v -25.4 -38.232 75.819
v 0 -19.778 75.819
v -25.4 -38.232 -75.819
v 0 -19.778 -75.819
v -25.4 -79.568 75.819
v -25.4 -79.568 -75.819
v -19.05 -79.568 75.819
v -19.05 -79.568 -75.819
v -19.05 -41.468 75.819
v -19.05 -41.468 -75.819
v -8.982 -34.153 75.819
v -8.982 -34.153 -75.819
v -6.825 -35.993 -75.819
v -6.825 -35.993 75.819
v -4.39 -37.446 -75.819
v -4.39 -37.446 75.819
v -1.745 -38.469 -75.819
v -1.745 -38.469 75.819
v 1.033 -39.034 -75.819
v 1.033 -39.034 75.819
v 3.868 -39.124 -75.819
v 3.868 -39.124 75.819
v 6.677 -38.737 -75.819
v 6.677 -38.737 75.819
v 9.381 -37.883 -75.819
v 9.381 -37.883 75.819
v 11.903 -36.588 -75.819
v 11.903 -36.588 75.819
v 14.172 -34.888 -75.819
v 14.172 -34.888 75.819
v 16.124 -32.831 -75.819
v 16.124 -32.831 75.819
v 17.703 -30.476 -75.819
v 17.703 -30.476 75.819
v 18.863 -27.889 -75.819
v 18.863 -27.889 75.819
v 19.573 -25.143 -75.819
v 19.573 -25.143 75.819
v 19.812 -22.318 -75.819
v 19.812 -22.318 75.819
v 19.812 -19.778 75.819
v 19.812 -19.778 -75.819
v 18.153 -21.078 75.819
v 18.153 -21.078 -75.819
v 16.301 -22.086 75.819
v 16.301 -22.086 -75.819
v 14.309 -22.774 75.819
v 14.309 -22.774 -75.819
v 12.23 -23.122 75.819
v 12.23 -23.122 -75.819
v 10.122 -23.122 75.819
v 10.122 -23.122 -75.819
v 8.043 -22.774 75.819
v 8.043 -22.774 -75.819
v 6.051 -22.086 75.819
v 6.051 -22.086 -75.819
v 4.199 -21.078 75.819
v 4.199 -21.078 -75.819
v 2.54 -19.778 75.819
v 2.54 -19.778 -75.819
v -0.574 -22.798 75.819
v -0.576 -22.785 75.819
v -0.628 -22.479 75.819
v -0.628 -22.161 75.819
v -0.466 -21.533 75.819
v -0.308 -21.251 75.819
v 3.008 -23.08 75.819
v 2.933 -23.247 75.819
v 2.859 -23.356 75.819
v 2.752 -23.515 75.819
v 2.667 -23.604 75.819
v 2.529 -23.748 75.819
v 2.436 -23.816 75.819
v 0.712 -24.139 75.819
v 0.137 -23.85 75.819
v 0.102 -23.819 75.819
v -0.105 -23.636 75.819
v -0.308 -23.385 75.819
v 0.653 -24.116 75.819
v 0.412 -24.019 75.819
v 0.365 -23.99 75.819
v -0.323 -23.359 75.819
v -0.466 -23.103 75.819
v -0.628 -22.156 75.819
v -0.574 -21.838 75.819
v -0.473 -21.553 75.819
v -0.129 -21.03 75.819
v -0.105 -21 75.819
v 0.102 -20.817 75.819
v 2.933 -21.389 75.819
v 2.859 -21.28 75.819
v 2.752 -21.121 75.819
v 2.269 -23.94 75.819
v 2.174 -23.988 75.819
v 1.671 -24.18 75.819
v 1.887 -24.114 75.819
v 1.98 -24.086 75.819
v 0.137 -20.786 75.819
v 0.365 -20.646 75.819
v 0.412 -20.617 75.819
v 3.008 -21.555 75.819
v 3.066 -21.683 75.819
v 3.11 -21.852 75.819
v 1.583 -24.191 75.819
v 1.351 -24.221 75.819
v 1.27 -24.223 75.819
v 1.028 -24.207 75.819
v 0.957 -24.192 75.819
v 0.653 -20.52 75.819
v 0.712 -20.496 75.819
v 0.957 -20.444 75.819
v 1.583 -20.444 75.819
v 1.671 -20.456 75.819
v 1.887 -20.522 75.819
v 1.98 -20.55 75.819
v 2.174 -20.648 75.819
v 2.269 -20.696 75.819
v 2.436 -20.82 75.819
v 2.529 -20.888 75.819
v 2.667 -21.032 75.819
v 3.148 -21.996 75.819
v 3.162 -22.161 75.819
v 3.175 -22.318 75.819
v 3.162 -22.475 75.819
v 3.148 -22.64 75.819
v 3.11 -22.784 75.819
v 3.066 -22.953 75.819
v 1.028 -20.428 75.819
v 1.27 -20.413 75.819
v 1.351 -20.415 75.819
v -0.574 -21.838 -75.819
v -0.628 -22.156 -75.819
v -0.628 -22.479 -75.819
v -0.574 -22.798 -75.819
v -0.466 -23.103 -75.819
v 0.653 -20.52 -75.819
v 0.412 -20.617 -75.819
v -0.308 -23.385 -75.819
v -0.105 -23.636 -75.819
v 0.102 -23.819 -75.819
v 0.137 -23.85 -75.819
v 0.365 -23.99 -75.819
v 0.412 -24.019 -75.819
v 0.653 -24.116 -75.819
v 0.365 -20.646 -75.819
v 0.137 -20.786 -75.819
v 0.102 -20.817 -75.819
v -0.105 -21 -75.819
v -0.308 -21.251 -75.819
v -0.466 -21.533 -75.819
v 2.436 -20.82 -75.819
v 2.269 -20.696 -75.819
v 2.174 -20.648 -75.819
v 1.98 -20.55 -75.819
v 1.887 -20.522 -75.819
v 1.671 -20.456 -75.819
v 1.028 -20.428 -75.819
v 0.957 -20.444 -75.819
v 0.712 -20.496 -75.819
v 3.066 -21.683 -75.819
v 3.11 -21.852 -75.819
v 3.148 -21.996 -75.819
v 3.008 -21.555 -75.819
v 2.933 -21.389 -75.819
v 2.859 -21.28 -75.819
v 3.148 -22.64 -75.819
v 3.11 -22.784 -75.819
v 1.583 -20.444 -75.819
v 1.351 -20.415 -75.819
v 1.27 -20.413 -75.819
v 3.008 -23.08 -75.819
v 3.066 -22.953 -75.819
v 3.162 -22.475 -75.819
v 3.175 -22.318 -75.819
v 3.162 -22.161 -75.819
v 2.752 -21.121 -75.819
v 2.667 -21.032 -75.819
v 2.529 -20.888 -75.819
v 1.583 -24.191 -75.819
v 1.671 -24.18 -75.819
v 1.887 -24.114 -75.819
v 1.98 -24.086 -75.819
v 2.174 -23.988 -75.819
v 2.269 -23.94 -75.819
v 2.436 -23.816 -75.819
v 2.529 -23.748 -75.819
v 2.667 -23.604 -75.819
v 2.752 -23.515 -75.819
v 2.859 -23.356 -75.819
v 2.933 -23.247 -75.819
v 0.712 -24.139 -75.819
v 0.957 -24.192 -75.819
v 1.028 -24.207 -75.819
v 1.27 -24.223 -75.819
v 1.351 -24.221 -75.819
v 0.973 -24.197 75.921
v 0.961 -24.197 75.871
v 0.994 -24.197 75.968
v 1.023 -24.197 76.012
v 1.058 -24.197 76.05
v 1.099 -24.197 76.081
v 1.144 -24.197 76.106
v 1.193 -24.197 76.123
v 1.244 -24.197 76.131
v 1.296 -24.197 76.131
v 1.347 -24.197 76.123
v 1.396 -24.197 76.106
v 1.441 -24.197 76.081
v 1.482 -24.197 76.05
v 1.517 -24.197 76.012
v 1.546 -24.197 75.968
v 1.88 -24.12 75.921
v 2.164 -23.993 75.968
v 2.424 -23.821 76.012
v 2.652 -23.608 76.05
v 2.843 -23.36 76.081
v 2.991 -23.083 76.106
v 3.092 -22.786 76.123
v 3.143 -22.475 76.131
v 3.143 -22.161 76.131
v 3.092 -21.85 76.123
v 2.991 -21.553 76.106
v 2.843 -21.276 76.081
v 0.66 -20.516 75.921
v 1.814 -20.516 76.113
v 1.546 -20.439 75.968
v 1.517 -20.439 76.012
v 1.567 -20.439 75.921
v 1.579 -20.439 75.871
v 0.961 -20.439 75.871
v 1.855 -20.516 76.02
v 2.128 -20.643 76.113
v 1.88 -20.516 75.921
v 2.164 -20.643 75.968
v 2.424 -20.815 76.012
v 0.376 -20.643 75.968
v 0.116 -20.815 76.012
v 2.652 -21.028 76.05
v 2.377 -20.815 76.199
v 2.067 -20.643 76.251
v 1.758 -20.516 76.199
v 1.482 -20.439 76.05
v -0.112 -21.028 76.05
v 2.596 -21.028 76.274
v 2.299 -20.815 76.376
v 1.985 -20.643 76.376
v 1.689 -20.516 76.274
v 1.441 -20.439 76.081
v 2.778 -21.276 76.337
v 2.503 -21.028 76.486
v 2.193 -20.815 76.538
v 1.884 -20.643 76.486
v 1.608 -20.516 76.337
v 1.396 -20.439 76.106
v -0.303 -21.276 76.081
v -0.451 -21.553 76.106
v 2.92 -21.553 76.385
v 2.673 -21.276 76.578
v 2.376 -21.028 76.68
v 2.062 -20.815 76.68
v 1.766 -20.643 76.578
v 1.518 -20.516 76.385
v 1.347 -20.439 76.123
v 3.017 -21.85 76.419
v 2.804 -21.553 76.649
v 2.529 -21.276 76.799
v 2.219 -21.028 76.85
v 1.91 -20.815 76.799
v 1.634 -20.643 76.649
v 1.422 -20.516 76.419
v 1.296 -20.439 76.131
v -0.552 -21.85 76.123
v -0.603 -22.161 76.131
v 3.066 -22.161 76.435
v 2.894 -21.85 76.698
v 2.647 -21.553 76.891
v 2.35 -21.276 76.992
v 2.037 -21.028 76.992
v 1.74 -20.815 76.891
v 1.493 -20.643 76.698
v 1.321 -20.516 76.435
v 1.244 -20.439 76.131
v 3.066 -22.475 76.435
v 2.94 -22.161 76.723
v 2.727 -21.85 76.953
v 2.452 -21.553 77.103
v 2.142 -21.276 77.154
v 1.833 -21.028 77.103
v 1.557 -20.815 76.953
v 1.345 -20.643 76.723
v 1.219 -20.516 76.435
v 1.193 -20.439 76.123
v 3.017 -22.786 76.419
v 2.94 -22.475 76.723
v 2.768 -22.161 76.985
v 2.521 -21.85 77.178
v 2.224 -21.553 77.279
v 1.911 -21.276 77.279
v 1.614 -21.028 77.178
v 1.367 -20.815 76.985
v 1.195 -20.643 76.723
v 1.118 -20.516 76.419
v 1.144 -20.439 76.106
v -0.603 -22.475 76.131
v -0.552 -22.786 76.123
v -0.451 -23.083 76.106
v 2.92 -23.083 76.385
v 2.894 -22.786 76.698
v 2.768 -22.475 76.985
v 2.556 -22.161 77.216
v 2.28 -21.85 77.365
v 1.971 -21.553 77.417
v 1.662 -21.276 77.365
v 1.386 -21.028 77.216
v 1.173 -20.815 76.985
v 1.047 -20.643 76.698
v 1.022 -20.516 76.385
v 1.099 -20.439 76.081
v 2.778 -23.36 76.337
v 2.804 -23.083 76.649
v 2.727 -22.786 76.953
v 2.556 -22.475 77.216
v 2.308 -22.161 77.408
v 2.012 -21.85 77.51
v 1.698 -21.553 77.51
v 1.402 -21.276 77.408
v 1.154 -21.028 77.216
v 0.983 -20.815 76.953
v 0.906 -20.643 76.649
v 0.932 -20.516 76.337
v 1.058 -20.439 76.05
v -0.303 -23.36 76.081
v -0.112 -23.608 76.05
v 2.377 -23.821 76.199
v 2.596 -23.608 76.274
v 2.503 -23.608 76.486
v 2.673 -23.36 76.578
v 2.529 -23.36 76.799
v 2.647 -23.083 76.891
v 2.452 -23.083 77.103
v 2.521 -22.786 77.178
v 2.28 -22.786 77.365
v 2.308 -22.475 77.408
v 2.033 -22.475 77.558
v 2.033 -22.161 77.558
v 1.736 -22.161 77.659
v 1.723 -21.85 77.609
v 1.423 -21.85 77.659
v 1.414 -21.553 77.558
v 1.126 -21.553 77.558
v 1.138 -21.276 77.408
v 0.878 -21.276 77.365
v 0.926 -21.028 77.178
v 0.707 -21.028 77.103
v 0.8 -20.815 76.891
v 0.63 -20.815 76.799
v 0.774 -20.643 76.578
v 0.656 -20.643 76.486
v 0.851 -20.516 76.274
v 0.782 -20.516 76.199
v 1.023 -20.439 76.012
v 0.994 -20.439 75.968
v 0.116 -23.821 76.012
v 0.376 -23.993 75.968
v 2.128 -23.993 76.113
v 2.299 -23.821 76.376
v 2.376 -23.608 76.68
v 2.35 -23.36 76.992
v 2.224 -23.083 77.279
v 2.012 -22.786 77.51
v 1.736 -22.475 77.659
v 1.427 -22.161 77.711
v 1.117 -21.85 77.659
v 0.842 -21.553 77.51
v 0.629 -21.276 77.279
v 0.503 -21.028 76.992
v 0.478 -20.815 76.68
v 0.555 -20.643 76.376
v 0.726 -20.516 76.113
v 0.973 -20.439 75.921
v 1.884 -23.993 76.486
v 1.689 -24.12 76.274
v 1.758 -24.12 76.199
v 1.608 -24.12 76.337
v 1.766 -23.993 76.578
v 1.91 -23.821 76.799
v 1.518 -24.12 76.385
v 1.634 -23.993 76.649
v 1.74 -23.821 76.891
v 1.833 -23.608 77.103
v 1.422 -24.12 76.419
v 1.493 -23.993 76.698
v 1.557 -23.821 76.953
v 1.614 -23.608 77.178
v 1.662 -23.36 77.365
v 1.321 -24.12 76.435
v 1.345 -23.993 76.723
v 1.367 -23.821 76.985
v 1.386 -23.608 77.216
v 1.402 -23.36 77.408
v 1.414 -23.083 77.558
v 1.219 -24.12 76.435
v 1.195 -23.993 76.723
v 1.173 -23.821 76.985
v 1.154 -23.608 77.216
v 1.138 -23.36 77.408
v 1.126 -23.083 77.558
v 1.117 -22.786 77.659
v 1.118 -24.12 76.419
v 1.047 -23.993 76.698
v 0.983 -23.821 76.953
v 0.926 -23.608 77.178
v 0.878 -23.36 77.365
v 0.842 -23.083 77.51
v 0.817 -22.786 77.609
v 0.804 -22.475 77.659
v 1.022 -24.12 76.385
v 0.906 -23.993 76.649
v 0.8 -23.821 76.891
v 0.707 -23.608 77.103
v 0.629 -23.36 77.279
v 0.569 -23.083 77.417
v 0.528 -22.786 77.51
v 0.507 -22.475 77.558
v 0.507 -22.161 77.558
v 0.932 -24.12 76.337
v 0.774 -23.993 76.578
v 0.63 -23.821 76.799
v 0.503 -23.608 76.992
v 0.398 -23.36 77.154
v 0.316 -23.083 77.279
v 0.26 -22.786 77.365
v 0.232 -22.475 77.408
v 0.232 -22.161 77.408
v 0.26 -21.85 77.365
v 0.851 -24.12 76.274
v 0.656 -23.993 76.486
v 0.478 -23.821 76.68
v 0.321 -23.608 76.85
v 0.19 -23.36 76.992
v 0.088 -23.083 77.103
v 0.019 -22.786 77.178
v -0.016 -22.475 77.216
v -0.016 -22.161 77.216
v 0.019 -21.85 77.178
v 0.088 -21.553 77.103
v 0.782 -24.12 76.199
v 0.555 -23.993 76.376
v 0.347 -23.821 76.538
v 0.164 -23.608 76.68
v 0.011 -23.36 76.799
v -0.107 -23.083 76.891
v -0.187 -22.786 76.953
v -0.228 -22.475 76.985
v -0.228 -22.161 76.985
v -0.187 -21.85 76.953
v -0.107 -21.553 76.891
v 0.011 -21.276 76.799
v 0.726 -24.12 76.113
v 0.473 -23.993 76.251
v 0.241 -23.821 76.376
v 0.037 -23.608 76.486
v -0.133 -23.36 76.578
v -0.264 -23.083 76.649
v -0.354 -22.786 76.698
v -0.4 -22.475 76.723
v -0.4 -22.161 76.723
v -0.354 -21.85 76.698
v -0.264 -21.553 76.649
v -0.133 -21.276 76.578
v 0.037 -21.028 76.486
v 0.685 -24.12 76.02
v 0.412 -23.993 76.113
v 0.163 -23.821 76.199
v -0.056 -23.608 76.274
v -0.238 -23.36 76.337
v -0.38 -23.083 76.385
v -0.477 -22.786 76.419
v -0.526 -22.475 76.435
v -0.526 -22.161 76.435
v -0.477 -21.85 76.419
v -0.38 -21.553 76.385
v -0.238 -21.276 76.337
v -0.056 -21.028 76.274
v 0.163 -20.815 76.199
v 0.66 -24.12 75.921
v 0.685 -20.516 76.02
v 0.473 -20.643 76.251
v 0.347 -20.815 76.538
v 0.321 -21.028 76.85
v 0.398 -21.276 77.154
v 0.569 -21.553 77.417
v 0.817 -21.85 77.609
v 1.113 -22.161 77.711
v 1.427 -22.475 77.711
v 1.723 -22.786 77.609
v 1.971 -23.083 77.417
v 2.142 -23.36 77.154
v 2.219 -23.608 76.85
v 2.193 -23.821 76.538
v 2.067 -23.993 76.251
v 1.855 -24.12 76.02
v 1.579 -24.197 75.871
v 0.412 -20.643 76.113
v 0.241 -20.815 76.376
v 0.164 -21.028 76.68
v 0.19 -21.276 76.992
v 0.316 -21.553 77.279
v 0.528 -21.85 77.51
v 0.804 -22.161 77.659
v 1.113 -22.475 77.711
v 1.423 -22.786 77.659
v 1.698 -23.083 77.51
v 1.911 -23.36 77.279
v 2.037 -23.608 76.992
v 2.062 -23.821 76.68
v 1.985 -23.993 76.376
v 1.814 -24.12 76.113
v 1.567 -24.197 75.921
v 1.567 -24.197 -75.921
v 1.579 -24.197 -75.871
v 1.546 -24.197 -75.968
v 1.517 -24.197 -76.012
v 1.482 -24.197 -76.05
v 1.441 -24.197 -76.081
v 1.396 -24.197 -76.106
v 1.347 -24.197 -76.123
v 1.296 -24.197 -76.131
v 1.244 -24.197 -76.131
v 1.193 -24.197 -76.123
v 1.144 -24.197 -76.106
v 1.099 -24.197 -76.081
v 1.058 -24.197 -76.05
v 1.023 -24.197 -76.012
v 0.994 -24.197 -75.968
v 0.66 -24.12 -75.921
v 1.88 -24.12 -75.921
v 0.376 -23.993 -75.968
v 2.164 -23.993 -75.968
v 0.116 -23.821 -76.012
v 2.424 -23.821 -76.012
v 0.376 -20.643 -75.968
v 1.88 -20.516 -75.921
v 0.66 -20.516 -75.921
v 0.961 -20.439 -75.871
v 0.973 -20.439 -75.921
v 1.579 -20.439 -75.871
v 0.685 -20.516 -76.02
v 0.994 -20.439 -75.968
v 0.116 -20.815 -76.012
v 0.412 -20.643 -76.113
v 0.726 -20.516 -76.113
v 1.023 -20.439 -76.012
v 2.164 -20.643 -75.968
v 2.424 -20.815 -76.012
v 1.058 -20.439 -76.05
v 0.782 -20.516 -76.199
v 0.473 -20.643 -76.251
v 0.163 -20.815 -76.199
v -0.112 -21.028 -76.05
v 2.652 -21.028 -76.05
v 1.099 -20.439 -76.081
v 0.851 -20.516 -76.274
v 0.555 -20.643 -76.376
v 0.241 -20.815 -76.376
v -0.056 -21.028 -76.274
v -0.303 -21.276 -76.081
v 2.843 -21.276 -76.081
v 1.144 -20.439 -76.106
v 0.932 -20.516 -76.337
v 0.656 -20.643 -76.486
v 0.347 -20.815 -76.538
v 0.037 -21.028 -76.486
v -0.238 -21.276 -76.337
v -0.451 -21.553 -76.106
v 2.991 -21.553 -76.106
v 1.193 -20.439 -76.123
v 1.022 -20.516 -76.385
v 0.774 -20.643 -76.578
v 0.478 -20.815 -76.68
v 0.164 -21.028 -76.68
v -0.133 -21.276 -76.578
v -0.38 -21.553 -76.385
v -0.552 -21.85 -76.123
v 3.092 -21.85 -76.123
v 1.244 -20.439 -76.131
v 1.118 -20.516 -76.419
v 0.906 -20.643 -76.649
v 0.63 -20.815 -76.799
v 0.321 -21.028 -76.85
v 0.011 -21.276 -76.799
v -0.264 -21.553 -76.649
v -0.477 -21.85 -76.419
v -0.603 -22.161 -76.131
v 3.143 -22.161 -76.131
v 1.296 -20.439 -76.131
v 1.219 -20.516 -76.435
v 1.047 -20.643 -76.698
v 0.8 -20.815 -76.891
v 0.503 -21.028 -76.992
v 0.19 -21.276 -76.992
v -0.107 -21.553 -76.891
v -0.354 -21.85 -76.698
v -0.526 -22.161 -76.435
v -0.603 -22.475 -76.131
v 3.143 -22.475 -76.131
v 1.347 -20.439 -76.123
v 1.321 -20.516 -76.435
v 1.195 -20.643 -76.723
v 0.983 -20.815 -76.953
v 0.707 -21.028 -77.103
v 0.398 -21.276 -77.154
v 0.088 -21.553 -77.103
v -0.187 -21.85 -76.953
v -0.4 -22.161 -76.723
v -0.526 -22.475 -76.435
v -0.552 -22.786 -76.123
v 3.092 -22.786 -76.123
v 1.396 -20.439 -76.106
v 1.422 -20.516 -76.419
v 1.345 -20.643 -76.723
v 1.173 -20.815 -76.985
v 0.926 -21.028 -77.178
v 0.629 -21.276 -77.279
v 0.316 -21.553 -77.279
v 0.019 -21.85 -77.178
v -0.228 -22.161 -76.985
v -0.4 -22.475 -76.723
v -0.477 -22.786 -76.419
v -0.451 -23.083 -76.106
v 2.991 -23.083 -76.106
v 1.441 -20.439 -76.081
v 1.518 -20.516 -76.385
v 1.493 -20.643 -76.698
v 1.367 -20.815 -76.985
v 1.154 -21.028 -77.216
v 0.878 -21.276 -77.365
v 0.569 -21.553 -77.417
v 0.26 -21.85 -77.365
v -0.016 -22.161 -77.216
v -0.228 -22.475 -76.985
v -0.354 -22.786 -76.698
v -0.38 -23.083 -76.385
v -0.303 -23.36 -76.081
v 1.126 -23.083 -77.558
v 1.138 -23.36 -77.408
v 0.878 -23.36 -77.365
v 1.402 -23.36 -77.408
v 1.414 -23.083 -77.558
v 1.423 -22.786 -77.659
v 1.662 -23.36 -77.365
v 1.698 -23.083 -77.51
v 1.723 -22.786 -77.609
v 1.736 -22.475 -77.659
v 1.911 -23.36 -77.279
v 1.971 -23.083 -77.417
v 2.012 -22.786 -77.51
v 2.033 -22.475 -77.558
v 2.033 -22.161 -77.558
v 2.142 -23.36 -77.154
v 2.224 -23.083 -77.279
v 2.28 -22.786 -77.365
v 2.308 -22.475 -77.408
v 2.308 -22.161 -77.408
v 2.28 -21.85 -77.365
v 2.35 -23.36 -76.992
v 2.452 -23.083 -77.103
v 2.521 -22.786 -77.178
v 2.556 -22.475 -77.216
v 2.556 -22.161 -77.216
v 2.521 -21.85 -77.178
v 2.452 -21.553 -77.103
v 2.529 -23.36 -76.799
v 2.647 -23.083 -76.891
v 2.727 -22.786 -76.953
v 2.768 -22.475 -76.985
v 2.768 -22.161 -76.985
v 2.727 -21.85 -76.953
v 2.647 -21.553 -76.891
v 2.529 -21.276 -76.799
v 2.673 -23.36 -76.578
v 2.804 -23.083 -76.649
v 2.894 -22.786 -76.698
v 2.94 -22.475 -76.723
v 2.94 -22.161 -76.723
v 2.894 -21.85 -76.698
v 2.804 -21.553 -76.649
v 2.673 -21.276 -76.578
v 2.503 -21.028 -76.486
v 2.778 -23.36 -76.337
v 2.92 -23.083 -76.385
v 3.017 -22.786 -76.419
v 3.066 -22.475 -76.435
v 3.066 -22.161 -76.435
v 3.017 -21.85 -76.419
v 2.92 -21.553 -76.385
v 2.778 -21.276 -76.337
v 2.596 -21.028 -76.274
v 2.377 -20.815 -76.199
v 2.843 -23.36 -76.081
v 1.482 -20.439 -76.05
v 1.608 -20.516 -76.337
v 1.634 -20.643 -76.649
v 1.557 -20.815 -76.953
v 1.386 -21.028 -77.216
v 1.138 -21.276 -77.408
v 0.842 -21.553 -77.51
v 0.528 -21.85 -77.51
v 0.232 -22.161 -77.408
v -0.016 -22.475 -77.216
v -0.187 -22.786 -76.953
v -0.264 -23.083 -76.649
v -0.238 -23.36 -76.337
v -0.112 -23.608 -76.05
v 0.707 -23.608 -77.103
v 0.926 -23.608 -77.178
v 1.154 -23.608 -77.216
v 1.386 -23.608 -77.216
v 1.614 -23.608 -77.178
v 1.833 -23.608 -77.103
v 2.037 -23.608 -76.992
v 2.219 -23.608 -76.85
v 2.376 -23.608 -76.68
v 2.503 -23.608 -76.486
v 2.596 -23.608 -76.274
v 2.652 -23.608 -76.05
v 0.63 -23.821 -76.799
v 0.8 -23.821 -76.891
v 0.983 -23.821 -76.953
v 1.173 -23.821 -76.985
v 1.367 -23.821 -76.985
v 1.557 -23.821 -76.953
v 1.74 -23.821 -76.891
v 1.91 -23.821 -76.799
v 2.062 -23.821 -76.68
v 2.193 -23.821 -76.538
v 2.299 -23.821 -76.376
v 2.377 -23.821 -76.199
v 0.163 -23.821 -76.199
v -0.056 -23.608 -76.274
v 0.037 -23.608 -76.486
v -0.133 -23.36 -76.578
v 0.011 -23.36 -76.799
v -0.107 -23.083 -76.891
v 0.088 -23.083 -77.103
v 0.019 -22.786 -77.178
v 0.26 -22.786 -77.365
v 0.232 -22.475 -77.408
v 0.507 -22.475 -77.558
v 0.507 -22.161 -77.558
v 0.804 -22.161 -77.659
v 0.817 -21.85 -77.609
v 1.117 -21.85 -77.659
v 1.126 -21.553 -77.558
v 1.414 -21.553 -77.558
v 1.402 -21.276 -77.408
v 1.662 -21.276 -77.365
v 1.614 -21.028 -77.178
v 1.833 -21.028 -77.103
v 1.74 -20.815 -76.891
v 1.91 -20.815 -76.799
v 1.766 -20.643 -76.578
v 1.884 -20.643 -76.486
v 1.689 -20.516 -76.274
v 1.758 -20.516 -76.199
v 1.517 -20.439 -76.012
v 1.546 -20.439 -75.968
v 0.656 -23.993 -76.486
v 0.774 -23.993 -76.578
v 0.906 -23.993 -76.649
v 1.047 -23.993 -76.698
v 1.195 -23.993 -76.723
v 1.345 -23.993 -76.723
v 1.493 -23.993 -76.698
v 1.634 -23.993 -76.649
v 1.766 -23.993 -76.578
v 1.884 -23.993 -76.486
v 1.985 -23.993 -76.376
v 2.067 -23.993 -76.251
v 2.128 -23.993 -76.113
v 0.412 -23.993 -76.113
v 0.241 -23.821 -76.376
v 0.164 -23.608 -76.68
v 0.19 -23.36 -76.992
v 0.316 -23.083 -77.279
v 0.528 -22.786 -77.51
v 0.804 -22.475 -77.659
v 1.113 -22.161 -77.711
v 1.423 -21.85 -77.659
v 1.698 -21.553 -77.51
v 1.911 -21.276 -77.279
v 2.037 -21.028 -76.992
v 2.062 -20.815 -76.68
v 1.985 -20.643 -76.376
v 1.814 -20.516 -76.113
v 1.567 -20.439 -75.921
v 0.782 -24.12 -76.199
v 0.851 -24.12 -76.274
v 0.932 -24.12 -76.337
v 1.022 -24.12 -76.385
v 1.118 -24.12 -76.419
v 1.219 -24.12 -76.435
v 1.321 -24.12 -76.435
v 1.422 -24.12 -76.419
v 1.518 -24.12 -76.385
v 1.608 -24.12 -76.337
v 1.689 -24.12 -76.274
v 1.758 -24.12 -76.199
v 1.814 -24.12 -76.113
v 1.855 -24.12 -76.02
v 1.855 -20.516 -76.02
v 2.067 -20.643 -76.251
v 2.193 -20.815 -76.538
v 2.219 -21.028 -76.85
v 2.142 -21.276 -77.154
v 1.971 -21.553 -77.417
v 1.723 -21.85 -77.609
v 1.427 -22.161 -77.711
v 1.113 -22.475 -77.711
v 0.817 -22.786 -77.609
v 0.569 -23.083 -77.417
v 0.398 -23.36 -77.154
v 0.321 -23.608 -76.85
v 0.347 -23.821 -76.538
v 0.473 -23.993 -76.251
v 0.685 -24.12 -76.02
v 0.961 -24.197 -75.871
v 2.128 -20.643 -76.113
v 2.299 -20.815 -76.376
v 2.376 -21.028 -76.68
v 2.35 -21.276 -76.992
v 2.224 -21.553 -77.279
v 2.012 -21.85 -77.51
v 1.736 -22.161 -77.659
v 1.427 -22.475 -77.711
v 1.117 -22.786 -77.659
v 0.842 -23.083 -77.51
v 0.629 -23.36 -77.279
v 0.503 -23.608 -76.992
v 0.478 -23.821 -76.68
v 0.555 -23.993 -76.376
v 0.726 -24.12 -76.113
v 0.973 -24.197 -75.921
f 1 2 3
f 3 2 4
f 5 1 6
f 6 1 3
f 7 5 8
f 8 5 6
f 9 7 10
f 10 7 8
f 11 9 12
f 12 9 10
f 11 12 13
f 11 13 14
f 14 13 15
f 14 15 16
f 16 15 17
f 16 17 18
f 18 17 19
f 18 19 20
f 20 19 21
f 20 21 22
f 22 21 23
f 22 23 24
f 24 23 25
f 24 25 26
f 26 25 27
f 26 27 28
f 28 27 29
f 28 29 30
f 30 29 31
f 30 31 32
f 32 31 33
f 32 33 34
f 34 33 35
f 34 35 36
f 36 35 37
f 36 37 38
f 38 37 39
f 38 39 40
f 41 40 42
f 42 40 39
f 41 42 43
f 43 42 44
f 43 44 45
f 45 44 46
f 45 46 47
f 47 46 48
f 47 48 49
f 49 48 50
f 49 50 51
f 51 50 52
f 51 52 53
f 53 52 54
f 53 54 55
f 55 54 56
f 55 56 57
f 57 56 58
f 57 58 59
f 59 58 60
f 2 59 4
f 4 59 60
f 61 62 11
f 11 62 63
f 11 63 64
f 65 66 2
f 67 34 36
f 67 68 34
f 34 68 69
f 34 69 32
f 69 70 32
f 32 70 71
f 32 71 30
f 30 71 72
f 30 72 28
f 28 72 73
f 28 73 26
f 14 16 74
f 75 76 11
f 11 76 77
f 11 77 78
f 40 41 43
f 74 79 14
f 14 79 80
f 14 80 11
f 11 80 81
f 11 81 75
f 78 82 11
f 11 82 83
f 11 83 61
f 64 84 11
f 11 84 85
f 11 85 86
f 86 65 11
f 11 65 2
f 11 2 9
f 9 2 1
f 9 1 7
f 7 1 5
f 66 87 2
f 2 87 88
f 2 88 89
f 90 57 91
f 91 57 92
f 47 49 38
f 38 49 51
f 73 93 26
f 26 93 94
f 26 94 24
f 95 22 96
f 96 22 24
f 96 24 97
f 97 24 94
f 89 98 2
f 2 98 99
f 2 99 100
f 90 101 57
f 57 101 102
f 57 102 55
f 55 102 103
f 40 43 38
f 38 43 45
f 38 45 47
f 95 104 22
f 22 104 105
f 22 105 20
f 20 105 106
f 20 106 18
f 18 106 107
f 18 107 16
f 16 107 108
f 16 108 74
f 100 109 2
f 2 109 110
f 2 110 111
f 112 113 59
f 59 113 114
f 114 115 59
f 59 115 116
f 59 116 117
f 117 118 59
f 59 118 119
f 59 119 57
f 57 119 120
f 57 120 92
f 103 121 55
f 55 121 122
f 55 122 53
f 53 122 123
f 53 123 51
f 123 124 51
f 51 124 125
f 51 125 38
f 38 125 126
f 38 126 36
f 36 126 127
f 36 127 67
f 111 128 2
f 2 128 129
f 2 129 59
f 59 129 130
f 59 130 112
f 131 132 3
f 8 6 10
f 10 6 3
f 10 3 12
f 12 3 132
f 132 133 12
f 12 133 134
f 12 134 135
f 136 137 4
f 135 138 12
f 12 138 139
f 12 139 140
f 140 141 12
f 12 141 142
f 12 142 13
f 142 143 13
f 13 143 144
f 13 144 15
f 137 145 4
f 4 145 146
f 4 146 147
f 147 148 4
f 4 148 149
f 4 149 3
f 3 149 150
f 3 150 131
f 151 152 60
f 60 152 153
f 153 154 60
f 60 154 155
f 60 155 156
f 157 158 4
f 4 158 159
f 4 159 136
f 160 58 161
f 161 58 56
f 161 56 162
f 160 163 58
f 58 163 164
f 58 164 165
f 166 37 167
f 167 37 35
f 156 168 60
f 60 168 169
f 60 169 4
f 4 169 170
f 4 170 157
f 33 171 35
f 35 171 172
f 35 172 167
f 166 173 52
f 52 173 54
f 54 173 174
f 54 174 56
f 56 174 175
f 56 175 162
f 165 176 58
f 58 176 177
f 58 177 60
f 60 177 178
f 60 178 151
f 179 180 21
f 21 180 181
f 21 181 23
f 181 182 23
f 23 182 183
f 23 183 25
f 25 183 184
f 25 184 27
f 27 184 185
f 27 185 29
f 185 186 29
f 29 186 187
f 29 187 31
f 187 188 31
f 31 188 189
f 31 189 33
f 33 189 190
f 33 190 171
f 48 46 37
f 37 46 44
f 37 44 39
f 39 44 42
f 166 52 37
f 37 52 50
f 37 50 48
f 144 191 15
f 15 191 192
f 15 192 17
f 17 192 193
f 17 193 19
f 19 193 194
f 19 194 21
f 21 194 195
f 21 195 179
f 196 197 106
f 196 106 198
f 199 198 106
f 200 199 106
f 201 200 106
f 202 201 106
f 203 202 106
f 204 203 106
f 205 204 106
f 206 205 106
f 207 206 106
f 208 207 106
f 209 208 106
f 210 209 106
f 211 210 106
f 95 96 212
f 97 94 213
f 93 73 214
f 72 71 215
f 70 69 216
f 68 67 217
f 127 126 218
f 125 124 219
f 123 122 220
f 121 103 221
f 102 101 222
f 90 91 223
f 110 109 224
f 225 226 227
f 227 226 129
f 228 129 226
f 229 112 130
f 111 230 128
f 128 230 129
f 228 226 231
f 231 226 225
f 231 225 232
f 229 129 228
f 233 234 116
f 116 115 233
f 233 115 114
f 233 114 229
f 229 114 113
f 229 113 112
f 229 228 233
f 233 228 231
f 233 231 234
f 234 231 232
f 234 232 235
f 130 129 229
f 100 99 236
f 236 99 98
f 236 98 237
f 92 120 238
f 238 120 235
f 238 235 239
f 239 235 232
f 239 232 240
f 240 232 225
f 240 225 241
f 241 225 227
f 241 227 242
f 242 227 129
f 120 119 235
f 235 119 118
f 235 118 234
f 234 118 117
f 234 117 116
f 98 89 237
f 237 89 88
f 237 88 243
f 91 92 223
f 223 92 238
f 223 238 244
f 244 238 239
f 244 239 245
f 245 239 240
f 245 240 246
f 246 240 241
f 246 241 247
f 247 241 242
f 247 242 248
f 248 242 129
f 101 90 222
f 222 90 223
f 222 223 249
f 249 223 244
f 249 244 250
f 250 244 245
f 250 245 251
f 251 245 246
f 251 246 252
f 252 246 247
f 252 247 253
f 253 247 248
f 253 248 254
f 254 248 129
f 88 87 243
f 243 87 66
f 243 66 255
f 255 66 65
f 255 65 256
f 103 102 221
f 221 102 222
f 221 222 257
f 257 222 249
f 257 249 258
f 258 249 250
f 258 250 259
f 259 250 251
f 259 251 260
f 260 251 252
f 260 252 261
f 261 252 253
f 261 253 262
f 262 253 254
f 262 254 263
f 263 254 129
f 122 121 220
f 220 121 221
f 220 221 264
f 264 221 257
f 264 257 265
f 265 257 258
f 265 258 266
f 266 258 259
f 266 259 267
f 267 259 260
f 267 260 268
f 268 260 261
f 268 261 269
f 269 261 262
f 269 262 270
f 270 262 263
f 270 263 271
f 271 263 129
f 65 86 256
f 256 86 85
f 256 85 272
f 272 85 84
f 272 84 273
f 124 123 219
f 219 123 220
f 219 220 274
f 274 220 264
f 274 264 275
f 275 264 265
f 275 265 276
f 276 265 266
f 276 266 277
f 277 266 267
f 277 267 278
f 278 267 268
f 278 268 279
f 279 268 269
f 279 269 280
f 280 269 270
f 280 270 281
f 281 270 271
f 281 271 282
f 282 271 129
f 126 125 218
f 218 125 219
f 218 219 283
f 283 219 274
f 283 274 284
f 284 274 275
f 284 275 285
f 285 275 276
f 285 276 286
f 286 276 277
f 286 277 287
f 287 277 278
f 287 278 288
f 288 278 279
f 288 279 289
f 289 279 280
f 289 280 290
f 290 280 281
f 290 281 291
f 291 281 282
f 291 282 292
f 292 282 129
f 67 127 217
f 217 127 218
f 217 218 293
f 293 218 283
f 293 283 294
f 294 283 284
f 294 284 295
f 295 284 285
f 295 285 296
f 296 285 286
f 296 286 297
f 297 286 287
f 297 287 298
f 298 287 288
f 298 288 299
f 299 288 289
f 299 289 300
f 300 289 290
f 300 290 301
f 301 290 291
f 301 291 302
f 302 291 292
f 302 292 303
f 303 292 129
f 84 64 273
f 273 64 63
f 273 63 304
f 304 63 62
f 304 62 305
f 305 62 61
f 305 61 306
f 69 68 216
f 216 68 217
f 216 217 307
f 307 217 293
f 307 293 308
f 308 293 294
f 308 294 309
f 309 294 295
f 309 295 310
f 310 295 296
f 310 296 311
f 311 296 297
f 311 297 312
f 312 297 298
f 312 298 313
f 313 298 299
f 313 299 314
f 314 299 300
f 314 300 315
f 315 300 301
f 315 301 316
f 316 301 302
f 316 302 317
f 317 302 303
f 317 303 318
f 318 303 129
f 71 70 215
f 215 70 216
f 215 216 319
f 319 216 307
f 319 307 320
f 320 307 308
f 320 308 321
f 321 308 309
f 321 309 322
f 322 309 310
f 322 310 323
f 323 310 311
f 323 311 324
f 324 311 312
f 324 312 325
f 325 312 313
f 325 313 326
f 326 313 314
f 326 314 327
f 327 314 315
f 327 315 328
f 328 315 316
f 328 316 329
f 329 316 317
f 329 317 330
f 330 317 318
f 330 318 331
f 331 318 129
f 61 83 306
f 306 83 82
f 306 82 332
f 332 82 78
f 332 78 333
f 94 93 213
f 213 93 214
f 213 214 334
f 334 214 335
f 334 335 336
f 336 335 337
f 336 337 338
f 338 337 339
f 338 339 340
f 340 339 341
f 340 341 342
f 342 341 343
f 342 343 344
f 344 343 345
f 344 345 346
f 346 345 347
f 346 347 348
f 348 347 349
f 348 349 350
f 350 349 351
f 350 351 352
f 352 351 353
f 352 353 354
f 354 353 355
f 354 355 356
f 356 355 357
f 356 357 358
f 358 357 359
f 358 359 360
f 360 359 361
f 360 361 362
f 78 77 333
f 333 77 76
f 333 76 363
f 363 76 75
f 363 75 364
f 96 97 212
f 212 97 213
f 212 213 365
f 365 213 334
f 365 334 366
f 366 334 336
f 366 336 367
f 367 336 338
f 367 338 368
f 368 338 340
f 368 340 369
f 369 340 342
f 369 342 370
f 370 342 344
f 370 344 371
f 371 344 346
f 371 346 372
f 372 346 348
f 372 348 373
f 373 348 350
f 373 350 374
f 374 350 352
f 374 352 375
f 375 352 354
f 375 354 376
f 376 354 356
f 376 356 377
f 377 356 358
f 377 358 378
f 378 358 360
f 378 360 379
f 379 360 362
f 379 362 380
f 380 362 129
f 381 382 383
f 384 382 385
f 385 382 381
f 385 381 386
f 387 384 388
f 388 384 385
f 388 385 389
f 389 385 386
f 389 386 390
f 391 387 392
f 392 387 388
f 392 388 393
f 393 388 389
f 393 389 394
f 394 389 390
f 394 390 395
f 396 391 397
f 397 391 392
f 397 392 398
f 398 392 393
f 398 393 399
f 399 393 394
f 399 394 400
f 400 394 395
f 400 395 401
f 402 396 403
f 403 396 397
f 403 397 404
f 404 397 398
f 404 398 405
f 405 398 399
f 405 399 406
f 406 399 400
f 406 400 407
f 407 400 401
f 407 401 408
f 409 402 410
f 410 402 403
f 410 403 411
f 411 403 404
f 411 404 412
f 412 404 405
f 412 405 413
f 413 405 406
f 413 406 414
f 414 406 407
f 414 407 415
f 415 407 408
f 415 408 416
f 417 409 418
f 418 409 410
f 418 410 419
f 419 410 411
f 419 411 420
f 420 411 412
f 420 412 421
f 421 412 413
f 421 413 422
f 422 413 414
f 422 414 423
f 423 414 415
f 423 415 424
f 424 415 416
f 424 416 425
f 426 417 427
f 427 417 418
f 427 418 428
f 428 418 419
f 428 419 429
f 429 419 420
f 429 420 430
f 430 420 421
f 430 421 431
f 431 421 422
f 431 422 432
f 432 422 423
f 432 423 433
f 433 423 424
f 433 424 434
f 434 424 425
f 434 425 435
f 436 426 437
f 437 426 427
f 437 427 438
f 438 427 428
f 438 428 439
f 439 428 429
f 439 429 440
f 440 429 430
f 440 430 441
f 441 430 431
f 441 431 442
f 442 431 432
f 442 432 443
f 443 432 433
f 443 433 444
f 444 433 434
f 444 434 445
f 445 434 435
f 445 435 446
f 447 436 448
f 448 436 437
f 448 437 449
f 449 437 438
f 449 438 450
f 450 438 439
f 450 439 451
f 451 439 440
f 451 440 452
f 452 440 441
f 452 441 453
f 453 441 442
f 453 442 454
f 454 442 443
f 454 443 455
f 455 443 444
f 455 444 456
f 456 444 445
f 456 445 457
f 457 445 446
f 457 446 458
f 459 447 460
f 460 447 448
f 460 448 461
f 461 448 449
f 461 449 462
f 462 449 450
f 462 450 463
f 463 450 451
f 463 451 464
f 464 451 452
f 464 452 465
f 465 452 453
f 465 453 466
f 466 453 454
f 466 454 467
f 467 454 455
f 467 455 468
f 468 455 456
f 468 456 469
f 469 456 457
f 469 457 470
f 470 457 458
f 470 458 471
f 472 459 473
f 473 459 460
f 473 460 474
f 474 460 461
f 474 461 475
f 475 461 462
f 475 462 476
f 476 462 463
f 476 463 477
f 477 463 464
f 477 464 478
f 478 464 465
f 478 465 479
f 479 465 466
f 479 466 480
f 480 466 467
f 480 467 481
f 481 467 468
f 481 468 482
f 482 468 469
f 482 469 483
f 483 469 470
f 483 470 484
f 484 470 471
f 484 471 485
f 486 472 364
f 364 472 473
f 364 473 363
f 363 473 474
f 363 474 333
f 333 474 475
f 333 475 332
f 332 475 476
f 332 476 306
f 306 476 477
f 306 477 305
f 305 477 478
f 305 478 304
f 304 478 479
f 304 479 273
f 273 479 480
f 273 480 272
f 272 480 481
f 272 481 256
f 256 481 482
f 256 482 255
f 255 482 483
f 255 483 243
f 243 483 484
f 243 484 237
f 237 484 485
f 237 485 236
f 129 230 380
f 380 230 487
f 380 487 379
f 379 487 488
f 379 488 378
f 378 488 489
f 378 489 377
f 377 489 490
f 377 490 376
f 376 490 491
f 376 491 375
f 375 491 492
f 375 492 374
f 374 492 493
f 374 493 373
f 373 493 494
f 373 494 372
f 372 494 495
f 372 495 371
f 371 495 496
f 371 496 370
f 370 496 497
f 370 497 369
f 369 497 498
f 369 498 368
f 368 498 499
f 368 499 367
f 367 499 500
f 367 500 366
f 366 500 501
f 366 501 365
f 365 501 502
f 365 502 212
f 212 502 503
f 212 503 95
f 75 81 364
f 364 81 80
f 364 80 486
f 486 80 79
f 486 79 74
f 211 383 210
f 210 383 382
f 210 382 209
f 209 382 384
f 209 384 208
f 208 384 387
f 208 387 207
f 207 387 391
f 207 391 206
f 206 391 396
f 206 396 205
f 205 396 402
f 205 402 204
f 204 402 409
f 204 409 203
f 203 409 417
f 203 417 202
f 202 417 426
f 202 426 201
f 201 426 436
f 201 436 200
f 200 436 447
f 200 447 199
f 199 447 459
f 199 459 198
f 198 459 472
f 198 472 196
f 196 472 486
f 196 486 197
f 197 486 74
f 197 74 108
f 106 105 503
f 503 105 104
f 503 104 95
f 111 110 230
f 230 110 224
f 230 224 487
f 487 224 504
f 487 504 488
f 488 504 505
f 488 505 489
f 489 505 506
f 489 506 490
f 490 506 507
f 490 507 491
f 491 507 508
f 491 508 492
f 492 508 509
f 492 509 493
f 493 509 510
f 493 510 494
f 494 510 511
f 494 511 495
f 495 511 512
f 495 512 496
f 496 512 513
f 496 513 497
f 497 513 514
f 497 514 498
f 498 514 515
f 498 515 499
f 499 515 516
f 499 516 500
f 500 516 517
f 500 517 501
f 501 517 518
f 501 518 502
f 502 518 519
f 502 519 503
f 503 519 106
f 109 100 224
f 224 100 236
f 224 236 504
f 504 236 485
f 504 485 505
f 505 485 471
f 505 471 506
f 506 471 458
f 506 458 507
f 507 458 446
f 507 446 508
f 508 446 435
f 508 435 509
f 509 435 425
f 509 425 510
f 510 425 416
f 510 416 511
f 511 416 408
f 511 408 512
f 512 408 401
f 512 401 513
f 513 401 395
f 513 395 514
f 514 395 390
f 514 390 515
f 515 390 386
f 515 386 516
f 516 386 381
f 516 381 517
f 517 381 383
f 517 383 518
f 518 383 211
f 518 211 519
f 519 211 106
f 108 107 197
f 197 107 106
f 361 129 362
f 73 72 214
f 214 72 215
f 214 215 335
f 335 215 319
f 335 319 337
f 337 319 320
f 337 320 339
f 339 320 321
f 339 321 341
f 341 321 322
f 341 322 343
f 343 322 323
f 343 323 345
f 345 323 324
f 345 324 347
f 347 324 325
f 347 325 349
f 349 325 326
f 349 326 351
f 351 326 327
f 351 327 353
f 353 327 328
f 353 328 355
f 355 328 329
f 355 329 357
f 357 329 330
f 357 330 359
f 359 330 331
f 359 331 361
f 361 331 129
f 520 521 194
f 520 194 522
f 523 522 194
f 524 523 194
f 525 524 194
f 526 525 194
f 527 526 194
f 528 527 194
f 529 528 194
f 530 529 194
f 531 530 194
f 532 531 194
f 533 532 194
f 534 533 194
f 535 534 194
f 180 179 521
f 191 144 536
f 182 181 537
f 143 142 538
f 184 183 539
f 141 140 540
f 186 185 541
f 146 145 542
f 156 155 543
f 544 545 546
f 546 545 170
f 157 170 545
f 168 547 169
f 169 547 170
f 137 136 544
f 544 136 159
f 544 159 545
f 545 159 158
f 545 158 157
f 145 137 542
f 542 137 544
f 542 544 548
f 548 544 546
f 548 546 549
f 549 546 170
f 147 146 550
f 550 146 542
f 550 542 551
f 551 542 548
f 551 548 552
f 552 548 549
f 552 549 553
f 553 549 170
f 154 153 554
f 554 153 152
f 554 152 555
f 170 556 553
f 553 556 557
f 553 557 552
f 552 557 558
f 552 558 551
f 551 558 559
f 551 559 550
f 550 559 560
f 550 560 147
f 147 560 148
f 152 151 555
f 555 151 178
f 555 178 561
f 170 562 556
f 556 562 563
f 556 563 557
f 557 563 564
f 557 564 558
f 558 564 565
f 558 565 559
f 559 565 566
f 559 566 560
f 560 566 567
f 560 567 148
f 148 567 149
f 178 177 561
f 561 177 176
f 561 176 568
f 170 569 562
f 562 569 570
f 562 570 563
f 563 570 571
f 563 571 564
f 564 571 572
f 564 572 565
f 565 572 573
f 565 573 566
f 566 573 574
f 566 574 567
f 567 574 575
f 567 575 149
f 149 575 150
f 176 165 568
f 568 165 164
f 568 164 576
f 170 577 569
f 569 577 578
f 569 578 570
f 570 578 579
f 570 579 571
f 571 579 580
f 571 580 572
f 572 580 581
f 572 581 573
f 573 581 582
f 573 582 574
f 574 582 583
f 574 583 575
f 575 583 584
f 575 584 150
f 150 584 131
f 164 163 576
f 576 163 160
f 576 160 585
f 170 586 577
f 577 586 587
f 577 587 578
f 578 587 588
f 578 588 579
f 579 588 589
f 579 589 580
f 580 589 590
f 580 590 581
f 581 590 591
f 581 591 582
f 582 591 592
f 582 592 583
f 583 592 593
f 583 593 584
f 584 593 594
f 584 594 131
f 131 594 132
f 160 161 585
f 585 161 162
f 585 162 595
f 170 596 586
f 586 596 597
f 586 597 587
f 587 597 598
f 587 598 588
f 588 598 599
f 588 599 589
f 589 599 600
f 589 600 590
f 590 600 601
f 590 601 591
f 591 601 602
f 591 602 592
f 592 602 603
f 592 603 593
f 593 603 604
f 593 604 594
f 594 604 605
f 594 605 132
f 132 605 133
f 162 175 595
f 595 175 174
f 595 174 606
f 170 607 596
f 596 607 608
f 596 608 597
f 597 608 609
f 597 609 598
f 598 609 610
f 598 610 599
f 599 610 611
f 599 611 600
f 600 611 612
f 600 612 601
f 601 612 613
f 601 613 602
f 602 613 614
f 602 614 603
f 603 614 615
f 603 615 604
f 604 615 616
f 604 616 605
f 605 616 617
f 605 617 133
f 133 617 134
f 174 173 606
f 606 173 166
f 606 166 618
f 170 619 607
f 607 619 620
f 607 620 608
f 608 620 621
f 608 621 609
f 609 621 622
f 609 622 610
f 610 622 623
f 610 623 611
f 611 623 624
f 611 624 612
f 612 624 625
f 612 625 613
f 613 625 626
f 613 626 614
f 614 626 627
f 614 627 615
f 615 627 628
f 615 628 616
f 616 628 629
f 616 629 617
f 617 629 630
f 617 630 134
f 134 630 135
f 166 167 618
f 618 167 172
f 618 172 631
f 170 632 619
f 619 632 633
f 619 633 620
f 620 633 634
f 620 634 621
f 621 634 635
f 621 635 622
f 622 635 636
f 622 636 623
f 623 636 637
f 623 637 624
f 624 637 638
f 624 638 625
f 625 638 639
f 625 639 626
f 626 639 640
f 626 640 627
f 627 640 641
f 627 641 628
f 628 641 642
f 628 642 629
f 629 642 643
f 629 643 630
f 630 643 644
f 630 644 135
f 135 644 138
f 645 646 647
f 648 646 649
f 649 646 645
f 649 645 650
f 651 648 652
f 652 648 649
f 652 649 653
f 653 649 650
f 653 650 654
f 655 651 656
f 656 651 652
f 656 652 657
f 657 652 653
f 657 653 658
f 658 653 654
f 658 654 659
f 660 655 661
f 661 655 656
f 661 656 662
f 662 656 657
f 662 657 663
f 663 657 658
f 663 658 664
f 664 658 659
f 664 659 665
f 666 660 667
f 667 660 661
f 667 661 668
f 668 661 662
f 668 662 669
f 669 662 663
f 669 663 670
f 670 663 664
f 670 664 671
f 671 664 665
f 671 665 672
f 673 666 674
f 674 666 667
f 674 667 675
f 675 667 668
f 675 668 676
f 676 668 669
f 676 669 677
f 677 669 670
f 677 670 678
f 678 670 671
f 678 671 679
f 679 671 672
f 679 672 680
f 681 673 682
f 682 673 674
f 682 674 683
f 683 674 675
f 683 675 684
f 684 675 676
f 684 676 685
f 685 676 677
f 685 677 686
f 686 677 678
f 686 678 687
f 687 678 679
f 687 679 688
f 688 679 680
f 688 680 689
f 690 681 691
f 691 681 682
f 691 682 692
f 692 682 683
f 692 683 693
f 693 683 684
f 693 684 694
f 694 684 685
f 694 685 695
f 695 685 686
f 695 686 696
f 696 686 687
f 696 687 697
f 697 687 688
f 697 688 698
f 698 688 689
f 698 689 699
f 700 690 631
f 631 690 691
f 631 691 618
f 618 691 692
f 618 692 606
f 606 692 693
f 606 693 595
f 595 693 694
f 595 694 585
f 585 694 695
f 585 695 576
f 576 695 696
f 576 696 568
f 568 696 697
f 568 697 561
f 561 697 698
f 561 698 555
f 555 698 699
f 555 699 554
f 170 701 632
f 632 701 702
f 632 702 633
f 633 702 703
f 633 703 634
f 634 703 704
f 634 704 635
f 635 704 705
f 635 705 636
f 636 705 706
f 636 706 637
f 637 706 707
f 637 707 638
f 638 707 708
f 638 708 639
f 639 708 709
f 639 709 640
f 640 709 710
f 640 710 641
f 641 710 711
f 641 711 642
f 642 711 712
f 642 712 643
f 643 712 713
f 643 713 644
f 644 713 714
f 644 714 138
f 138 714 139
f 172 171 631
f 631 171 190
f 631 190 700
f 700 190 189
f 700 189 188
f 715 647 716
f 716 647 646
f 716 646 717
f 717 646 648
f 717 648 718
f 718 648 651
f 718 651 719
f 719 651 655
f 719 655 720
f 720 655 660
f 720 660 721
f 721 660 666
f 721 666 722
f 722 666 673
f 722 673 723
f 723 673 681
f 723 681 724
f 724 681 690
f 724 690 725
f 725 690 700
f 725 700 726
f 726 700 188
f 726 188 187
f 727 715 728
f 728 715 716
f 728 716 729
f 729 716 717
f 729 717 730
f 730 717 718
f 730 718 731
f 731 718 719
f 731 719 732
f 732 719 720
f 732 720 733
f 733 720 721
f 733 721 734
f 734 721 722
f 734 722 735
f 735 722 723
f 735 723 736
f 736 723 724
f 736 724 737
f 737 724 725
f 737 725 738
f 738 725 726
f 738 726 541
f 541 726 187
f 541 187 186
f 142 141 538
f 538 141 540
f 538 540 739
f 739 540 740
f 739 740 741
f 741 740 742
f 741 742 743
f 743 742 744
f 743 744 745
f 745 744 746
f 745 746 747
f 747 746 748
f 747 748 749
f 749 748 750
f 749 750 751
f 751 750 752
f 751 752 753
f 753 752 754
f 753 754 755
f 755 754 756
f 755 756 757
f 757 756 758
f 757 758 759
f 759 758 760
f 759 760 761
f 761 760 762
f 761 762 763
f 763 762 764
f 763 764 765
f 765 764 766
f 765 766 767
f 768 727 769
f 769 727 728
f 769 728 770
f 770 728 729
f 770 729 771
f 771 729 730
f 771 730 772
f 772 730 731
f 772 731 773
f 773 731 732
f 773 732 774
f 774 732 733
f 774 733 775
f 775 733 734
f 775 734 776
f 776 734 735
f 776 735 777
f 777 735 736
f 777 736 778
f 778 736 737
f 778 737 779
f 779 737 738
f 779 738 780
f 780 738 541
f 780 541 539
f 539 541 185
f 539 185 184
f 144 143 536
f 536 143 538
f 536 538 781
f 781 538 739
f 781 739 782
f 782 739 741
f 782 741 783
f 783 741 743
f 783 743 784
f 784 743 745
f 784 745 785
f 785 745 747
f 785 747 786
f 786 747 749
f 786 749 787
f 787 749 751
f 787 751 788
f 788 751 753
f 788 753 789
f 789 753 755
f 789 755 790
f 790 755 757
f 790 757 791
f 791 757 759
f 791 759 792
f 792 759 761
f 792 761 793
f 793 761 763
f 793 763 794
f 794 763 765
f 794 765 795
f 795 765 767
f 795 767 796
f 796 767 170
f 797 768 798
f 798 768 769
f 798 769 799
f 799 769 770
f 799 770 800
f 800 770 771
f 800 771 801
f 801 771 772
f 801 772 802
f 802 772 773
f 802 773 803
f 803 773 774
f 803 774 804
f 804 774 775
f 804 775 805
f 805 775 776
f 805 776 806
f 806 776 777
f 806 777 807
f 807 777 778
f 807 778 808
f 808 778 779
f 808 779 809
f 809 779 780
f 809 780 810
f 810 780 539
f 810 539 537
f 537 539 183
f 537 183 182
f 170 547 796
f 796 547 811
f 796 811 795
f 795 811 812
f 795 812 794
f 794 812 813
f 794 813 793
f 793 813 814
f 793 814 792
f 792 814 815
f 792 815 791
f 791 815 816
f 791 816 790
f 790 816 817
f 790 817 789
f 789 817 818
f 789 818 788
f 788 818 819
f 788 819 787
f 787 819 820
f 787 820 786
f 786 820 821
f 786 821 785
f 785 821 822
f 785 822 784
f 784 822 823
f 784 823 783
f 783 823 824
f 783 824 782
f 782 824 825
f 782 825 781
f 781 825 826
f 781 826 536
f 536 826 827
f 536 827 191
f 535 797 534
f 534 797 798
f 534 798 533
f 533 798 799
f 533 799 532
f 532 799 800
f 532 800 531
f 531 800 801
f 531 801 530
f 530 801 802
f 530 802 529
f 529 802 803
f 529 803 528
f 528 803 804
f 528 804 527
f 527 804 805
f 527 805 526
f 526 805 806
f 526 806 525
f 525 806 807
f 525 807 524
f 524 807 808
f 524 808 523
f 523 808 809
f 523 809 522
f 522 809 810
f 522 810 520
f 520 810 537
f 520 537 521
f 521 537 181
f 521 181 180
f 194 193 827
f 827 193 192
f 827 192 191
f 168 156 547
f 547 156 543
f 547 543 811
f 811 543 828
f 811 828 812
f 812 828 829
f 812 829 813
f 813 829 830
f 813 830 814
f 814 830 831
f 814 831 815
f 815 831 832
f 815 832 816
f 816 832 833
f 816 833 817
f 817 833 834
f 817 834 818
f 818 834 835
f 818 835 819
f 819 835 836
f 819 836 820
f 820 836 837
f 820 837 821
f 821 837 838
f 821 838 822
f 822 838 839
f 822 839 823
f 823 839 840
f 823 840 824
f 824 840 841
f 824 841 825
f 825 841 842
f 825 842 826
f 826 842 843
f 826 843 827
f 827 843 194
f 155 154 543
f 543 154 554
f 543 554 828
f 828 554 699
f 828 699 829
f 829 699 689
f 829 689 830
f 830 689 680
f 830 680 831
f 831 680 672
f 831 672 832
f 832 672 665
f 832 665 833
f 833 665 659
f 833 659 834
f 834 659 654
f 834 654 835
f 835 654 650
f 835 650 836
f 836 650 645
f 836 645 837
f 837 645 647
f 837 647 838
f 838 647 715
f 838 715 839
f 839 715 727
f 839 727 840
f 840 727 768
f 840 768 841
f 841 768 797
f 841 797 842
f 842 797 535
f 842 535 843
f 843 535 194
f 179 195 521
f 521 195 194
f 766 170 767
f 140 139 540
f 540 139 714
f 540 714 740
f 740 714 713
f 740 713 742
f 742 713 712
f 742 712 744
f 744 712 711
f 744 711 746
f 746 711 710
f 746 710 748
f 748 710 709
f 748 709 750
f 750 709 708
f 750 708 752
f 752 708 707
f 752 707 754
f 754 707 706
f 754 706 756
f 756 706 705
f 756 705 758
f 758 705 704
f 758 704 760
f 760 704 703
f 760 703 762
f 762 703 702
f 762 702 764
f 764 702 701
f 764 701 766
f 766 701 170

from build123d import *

# Parameters (mm, degrees)
BOSS_EXTRUDE1_DEPTH = 75.819


with BuildPart() as part:
    # Sketch1 → Boss-Extrude1 (new, symmetric)
    with BuildSketch(Plane.XY):
        with BuildLine():
            Line((-19.05, -41.467593741), (-8.981837469, -34.152645484))
            ThreePointArc((-8.981837469, -34.152645484), (9.380639725, -37.883478952), (19.812, -22.317926926))
            Line((19.812, -22.317926926), (19.812, -19.777926926))
            ThreePointArc((19.812, -19.777926926), (11.176, -23.166133114), (2.54, -19.777926926))
            Line((2.54, -19.777926926), (0, -19.777926926))
            Line((0, -19.777926926), (-25.4, -38.232107137))
            Line((-25.4, -38.232107137), (-25.4, -79.567593741))
            Line((-25.4, -79.567593741), (-19.05, -79.567593741))
            Line((-19.05, -79.567593741), (-19.05, -41.467593741))
        make_face()
    extrude(amount=BOSS_EXTRUDE1_DEPTH, both=True)

    # Sketch2 → Revolve1 (revolve)
    with BuildSketch(Plane.XY.offset(75.819)):
        with BuildLine():
            Line((1.27, -20.412926926), (1.27, -24.222926926))
            ThreePointArc((1.27, -24.222926926), (3.175, -22.317926926), (1.27, -20.412926926))
        make_face()
    revolve(axis=Axis((1.27, -20.412926926, 75.819), (0, -1, 0)))

    # Sketch3 → Revolve2 (revolve)
    with BuildSketch(Plane(origin=(0, 0, -75.819), x_dir=(-1, 0, 0), z_dir=(0, 0, -1))):
        with BuildLine():
            Line((-1.27, -20.412926926), (-1.27, -24.222926926))
            ThreePointArc((-1.27, -24.222926926), (0.635, -22.317926926), (-1.27, -20.412926926))
        make_face()
    revolve(axis=Axis((1.27, -20.412926926, -75.819), (0, -1, 0)))


solid = part.part
